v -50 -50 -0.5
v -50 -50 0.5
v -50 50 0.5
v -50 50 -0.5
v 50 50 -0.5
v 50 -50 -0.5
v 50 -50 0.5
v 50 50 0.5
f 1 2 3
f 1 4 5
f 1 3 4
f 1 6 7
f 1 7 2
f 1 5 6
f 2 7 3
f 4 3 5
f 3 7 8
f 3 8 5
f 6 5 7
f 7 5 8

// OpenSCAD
// Start: lazy_union
default_5_default_5();
// End: lazy_union

// Modules.

// 'PartMaterial undef-default - default 5.0'
module default_5_default_5() {
  // 'None : _combine_solids_and_holes'
  union() {
    // 'default : _combine_solids_and_holes'
    union() {
      // 'plane1'
      multmatrix(m=[[1.0, 0.0, 0.0, -50.0], [0.0, 1.0, 0.0, -50.0], [0.0, 0.0, 1.0, -0.5], [0.0, 0.0, 0.0, 1.0]]) {
        // 'plane1'
        color(c=[1.0, 1.0, 0.0, 0.5]) {
          // 'plane1 : _combine_solids_and_holes'
          union() {
            // 'plane1'
            cube(size=[100.0, 100.0, 1.0]);
          }
        }
      }
    }
  }
} // end module default_5_default_5
